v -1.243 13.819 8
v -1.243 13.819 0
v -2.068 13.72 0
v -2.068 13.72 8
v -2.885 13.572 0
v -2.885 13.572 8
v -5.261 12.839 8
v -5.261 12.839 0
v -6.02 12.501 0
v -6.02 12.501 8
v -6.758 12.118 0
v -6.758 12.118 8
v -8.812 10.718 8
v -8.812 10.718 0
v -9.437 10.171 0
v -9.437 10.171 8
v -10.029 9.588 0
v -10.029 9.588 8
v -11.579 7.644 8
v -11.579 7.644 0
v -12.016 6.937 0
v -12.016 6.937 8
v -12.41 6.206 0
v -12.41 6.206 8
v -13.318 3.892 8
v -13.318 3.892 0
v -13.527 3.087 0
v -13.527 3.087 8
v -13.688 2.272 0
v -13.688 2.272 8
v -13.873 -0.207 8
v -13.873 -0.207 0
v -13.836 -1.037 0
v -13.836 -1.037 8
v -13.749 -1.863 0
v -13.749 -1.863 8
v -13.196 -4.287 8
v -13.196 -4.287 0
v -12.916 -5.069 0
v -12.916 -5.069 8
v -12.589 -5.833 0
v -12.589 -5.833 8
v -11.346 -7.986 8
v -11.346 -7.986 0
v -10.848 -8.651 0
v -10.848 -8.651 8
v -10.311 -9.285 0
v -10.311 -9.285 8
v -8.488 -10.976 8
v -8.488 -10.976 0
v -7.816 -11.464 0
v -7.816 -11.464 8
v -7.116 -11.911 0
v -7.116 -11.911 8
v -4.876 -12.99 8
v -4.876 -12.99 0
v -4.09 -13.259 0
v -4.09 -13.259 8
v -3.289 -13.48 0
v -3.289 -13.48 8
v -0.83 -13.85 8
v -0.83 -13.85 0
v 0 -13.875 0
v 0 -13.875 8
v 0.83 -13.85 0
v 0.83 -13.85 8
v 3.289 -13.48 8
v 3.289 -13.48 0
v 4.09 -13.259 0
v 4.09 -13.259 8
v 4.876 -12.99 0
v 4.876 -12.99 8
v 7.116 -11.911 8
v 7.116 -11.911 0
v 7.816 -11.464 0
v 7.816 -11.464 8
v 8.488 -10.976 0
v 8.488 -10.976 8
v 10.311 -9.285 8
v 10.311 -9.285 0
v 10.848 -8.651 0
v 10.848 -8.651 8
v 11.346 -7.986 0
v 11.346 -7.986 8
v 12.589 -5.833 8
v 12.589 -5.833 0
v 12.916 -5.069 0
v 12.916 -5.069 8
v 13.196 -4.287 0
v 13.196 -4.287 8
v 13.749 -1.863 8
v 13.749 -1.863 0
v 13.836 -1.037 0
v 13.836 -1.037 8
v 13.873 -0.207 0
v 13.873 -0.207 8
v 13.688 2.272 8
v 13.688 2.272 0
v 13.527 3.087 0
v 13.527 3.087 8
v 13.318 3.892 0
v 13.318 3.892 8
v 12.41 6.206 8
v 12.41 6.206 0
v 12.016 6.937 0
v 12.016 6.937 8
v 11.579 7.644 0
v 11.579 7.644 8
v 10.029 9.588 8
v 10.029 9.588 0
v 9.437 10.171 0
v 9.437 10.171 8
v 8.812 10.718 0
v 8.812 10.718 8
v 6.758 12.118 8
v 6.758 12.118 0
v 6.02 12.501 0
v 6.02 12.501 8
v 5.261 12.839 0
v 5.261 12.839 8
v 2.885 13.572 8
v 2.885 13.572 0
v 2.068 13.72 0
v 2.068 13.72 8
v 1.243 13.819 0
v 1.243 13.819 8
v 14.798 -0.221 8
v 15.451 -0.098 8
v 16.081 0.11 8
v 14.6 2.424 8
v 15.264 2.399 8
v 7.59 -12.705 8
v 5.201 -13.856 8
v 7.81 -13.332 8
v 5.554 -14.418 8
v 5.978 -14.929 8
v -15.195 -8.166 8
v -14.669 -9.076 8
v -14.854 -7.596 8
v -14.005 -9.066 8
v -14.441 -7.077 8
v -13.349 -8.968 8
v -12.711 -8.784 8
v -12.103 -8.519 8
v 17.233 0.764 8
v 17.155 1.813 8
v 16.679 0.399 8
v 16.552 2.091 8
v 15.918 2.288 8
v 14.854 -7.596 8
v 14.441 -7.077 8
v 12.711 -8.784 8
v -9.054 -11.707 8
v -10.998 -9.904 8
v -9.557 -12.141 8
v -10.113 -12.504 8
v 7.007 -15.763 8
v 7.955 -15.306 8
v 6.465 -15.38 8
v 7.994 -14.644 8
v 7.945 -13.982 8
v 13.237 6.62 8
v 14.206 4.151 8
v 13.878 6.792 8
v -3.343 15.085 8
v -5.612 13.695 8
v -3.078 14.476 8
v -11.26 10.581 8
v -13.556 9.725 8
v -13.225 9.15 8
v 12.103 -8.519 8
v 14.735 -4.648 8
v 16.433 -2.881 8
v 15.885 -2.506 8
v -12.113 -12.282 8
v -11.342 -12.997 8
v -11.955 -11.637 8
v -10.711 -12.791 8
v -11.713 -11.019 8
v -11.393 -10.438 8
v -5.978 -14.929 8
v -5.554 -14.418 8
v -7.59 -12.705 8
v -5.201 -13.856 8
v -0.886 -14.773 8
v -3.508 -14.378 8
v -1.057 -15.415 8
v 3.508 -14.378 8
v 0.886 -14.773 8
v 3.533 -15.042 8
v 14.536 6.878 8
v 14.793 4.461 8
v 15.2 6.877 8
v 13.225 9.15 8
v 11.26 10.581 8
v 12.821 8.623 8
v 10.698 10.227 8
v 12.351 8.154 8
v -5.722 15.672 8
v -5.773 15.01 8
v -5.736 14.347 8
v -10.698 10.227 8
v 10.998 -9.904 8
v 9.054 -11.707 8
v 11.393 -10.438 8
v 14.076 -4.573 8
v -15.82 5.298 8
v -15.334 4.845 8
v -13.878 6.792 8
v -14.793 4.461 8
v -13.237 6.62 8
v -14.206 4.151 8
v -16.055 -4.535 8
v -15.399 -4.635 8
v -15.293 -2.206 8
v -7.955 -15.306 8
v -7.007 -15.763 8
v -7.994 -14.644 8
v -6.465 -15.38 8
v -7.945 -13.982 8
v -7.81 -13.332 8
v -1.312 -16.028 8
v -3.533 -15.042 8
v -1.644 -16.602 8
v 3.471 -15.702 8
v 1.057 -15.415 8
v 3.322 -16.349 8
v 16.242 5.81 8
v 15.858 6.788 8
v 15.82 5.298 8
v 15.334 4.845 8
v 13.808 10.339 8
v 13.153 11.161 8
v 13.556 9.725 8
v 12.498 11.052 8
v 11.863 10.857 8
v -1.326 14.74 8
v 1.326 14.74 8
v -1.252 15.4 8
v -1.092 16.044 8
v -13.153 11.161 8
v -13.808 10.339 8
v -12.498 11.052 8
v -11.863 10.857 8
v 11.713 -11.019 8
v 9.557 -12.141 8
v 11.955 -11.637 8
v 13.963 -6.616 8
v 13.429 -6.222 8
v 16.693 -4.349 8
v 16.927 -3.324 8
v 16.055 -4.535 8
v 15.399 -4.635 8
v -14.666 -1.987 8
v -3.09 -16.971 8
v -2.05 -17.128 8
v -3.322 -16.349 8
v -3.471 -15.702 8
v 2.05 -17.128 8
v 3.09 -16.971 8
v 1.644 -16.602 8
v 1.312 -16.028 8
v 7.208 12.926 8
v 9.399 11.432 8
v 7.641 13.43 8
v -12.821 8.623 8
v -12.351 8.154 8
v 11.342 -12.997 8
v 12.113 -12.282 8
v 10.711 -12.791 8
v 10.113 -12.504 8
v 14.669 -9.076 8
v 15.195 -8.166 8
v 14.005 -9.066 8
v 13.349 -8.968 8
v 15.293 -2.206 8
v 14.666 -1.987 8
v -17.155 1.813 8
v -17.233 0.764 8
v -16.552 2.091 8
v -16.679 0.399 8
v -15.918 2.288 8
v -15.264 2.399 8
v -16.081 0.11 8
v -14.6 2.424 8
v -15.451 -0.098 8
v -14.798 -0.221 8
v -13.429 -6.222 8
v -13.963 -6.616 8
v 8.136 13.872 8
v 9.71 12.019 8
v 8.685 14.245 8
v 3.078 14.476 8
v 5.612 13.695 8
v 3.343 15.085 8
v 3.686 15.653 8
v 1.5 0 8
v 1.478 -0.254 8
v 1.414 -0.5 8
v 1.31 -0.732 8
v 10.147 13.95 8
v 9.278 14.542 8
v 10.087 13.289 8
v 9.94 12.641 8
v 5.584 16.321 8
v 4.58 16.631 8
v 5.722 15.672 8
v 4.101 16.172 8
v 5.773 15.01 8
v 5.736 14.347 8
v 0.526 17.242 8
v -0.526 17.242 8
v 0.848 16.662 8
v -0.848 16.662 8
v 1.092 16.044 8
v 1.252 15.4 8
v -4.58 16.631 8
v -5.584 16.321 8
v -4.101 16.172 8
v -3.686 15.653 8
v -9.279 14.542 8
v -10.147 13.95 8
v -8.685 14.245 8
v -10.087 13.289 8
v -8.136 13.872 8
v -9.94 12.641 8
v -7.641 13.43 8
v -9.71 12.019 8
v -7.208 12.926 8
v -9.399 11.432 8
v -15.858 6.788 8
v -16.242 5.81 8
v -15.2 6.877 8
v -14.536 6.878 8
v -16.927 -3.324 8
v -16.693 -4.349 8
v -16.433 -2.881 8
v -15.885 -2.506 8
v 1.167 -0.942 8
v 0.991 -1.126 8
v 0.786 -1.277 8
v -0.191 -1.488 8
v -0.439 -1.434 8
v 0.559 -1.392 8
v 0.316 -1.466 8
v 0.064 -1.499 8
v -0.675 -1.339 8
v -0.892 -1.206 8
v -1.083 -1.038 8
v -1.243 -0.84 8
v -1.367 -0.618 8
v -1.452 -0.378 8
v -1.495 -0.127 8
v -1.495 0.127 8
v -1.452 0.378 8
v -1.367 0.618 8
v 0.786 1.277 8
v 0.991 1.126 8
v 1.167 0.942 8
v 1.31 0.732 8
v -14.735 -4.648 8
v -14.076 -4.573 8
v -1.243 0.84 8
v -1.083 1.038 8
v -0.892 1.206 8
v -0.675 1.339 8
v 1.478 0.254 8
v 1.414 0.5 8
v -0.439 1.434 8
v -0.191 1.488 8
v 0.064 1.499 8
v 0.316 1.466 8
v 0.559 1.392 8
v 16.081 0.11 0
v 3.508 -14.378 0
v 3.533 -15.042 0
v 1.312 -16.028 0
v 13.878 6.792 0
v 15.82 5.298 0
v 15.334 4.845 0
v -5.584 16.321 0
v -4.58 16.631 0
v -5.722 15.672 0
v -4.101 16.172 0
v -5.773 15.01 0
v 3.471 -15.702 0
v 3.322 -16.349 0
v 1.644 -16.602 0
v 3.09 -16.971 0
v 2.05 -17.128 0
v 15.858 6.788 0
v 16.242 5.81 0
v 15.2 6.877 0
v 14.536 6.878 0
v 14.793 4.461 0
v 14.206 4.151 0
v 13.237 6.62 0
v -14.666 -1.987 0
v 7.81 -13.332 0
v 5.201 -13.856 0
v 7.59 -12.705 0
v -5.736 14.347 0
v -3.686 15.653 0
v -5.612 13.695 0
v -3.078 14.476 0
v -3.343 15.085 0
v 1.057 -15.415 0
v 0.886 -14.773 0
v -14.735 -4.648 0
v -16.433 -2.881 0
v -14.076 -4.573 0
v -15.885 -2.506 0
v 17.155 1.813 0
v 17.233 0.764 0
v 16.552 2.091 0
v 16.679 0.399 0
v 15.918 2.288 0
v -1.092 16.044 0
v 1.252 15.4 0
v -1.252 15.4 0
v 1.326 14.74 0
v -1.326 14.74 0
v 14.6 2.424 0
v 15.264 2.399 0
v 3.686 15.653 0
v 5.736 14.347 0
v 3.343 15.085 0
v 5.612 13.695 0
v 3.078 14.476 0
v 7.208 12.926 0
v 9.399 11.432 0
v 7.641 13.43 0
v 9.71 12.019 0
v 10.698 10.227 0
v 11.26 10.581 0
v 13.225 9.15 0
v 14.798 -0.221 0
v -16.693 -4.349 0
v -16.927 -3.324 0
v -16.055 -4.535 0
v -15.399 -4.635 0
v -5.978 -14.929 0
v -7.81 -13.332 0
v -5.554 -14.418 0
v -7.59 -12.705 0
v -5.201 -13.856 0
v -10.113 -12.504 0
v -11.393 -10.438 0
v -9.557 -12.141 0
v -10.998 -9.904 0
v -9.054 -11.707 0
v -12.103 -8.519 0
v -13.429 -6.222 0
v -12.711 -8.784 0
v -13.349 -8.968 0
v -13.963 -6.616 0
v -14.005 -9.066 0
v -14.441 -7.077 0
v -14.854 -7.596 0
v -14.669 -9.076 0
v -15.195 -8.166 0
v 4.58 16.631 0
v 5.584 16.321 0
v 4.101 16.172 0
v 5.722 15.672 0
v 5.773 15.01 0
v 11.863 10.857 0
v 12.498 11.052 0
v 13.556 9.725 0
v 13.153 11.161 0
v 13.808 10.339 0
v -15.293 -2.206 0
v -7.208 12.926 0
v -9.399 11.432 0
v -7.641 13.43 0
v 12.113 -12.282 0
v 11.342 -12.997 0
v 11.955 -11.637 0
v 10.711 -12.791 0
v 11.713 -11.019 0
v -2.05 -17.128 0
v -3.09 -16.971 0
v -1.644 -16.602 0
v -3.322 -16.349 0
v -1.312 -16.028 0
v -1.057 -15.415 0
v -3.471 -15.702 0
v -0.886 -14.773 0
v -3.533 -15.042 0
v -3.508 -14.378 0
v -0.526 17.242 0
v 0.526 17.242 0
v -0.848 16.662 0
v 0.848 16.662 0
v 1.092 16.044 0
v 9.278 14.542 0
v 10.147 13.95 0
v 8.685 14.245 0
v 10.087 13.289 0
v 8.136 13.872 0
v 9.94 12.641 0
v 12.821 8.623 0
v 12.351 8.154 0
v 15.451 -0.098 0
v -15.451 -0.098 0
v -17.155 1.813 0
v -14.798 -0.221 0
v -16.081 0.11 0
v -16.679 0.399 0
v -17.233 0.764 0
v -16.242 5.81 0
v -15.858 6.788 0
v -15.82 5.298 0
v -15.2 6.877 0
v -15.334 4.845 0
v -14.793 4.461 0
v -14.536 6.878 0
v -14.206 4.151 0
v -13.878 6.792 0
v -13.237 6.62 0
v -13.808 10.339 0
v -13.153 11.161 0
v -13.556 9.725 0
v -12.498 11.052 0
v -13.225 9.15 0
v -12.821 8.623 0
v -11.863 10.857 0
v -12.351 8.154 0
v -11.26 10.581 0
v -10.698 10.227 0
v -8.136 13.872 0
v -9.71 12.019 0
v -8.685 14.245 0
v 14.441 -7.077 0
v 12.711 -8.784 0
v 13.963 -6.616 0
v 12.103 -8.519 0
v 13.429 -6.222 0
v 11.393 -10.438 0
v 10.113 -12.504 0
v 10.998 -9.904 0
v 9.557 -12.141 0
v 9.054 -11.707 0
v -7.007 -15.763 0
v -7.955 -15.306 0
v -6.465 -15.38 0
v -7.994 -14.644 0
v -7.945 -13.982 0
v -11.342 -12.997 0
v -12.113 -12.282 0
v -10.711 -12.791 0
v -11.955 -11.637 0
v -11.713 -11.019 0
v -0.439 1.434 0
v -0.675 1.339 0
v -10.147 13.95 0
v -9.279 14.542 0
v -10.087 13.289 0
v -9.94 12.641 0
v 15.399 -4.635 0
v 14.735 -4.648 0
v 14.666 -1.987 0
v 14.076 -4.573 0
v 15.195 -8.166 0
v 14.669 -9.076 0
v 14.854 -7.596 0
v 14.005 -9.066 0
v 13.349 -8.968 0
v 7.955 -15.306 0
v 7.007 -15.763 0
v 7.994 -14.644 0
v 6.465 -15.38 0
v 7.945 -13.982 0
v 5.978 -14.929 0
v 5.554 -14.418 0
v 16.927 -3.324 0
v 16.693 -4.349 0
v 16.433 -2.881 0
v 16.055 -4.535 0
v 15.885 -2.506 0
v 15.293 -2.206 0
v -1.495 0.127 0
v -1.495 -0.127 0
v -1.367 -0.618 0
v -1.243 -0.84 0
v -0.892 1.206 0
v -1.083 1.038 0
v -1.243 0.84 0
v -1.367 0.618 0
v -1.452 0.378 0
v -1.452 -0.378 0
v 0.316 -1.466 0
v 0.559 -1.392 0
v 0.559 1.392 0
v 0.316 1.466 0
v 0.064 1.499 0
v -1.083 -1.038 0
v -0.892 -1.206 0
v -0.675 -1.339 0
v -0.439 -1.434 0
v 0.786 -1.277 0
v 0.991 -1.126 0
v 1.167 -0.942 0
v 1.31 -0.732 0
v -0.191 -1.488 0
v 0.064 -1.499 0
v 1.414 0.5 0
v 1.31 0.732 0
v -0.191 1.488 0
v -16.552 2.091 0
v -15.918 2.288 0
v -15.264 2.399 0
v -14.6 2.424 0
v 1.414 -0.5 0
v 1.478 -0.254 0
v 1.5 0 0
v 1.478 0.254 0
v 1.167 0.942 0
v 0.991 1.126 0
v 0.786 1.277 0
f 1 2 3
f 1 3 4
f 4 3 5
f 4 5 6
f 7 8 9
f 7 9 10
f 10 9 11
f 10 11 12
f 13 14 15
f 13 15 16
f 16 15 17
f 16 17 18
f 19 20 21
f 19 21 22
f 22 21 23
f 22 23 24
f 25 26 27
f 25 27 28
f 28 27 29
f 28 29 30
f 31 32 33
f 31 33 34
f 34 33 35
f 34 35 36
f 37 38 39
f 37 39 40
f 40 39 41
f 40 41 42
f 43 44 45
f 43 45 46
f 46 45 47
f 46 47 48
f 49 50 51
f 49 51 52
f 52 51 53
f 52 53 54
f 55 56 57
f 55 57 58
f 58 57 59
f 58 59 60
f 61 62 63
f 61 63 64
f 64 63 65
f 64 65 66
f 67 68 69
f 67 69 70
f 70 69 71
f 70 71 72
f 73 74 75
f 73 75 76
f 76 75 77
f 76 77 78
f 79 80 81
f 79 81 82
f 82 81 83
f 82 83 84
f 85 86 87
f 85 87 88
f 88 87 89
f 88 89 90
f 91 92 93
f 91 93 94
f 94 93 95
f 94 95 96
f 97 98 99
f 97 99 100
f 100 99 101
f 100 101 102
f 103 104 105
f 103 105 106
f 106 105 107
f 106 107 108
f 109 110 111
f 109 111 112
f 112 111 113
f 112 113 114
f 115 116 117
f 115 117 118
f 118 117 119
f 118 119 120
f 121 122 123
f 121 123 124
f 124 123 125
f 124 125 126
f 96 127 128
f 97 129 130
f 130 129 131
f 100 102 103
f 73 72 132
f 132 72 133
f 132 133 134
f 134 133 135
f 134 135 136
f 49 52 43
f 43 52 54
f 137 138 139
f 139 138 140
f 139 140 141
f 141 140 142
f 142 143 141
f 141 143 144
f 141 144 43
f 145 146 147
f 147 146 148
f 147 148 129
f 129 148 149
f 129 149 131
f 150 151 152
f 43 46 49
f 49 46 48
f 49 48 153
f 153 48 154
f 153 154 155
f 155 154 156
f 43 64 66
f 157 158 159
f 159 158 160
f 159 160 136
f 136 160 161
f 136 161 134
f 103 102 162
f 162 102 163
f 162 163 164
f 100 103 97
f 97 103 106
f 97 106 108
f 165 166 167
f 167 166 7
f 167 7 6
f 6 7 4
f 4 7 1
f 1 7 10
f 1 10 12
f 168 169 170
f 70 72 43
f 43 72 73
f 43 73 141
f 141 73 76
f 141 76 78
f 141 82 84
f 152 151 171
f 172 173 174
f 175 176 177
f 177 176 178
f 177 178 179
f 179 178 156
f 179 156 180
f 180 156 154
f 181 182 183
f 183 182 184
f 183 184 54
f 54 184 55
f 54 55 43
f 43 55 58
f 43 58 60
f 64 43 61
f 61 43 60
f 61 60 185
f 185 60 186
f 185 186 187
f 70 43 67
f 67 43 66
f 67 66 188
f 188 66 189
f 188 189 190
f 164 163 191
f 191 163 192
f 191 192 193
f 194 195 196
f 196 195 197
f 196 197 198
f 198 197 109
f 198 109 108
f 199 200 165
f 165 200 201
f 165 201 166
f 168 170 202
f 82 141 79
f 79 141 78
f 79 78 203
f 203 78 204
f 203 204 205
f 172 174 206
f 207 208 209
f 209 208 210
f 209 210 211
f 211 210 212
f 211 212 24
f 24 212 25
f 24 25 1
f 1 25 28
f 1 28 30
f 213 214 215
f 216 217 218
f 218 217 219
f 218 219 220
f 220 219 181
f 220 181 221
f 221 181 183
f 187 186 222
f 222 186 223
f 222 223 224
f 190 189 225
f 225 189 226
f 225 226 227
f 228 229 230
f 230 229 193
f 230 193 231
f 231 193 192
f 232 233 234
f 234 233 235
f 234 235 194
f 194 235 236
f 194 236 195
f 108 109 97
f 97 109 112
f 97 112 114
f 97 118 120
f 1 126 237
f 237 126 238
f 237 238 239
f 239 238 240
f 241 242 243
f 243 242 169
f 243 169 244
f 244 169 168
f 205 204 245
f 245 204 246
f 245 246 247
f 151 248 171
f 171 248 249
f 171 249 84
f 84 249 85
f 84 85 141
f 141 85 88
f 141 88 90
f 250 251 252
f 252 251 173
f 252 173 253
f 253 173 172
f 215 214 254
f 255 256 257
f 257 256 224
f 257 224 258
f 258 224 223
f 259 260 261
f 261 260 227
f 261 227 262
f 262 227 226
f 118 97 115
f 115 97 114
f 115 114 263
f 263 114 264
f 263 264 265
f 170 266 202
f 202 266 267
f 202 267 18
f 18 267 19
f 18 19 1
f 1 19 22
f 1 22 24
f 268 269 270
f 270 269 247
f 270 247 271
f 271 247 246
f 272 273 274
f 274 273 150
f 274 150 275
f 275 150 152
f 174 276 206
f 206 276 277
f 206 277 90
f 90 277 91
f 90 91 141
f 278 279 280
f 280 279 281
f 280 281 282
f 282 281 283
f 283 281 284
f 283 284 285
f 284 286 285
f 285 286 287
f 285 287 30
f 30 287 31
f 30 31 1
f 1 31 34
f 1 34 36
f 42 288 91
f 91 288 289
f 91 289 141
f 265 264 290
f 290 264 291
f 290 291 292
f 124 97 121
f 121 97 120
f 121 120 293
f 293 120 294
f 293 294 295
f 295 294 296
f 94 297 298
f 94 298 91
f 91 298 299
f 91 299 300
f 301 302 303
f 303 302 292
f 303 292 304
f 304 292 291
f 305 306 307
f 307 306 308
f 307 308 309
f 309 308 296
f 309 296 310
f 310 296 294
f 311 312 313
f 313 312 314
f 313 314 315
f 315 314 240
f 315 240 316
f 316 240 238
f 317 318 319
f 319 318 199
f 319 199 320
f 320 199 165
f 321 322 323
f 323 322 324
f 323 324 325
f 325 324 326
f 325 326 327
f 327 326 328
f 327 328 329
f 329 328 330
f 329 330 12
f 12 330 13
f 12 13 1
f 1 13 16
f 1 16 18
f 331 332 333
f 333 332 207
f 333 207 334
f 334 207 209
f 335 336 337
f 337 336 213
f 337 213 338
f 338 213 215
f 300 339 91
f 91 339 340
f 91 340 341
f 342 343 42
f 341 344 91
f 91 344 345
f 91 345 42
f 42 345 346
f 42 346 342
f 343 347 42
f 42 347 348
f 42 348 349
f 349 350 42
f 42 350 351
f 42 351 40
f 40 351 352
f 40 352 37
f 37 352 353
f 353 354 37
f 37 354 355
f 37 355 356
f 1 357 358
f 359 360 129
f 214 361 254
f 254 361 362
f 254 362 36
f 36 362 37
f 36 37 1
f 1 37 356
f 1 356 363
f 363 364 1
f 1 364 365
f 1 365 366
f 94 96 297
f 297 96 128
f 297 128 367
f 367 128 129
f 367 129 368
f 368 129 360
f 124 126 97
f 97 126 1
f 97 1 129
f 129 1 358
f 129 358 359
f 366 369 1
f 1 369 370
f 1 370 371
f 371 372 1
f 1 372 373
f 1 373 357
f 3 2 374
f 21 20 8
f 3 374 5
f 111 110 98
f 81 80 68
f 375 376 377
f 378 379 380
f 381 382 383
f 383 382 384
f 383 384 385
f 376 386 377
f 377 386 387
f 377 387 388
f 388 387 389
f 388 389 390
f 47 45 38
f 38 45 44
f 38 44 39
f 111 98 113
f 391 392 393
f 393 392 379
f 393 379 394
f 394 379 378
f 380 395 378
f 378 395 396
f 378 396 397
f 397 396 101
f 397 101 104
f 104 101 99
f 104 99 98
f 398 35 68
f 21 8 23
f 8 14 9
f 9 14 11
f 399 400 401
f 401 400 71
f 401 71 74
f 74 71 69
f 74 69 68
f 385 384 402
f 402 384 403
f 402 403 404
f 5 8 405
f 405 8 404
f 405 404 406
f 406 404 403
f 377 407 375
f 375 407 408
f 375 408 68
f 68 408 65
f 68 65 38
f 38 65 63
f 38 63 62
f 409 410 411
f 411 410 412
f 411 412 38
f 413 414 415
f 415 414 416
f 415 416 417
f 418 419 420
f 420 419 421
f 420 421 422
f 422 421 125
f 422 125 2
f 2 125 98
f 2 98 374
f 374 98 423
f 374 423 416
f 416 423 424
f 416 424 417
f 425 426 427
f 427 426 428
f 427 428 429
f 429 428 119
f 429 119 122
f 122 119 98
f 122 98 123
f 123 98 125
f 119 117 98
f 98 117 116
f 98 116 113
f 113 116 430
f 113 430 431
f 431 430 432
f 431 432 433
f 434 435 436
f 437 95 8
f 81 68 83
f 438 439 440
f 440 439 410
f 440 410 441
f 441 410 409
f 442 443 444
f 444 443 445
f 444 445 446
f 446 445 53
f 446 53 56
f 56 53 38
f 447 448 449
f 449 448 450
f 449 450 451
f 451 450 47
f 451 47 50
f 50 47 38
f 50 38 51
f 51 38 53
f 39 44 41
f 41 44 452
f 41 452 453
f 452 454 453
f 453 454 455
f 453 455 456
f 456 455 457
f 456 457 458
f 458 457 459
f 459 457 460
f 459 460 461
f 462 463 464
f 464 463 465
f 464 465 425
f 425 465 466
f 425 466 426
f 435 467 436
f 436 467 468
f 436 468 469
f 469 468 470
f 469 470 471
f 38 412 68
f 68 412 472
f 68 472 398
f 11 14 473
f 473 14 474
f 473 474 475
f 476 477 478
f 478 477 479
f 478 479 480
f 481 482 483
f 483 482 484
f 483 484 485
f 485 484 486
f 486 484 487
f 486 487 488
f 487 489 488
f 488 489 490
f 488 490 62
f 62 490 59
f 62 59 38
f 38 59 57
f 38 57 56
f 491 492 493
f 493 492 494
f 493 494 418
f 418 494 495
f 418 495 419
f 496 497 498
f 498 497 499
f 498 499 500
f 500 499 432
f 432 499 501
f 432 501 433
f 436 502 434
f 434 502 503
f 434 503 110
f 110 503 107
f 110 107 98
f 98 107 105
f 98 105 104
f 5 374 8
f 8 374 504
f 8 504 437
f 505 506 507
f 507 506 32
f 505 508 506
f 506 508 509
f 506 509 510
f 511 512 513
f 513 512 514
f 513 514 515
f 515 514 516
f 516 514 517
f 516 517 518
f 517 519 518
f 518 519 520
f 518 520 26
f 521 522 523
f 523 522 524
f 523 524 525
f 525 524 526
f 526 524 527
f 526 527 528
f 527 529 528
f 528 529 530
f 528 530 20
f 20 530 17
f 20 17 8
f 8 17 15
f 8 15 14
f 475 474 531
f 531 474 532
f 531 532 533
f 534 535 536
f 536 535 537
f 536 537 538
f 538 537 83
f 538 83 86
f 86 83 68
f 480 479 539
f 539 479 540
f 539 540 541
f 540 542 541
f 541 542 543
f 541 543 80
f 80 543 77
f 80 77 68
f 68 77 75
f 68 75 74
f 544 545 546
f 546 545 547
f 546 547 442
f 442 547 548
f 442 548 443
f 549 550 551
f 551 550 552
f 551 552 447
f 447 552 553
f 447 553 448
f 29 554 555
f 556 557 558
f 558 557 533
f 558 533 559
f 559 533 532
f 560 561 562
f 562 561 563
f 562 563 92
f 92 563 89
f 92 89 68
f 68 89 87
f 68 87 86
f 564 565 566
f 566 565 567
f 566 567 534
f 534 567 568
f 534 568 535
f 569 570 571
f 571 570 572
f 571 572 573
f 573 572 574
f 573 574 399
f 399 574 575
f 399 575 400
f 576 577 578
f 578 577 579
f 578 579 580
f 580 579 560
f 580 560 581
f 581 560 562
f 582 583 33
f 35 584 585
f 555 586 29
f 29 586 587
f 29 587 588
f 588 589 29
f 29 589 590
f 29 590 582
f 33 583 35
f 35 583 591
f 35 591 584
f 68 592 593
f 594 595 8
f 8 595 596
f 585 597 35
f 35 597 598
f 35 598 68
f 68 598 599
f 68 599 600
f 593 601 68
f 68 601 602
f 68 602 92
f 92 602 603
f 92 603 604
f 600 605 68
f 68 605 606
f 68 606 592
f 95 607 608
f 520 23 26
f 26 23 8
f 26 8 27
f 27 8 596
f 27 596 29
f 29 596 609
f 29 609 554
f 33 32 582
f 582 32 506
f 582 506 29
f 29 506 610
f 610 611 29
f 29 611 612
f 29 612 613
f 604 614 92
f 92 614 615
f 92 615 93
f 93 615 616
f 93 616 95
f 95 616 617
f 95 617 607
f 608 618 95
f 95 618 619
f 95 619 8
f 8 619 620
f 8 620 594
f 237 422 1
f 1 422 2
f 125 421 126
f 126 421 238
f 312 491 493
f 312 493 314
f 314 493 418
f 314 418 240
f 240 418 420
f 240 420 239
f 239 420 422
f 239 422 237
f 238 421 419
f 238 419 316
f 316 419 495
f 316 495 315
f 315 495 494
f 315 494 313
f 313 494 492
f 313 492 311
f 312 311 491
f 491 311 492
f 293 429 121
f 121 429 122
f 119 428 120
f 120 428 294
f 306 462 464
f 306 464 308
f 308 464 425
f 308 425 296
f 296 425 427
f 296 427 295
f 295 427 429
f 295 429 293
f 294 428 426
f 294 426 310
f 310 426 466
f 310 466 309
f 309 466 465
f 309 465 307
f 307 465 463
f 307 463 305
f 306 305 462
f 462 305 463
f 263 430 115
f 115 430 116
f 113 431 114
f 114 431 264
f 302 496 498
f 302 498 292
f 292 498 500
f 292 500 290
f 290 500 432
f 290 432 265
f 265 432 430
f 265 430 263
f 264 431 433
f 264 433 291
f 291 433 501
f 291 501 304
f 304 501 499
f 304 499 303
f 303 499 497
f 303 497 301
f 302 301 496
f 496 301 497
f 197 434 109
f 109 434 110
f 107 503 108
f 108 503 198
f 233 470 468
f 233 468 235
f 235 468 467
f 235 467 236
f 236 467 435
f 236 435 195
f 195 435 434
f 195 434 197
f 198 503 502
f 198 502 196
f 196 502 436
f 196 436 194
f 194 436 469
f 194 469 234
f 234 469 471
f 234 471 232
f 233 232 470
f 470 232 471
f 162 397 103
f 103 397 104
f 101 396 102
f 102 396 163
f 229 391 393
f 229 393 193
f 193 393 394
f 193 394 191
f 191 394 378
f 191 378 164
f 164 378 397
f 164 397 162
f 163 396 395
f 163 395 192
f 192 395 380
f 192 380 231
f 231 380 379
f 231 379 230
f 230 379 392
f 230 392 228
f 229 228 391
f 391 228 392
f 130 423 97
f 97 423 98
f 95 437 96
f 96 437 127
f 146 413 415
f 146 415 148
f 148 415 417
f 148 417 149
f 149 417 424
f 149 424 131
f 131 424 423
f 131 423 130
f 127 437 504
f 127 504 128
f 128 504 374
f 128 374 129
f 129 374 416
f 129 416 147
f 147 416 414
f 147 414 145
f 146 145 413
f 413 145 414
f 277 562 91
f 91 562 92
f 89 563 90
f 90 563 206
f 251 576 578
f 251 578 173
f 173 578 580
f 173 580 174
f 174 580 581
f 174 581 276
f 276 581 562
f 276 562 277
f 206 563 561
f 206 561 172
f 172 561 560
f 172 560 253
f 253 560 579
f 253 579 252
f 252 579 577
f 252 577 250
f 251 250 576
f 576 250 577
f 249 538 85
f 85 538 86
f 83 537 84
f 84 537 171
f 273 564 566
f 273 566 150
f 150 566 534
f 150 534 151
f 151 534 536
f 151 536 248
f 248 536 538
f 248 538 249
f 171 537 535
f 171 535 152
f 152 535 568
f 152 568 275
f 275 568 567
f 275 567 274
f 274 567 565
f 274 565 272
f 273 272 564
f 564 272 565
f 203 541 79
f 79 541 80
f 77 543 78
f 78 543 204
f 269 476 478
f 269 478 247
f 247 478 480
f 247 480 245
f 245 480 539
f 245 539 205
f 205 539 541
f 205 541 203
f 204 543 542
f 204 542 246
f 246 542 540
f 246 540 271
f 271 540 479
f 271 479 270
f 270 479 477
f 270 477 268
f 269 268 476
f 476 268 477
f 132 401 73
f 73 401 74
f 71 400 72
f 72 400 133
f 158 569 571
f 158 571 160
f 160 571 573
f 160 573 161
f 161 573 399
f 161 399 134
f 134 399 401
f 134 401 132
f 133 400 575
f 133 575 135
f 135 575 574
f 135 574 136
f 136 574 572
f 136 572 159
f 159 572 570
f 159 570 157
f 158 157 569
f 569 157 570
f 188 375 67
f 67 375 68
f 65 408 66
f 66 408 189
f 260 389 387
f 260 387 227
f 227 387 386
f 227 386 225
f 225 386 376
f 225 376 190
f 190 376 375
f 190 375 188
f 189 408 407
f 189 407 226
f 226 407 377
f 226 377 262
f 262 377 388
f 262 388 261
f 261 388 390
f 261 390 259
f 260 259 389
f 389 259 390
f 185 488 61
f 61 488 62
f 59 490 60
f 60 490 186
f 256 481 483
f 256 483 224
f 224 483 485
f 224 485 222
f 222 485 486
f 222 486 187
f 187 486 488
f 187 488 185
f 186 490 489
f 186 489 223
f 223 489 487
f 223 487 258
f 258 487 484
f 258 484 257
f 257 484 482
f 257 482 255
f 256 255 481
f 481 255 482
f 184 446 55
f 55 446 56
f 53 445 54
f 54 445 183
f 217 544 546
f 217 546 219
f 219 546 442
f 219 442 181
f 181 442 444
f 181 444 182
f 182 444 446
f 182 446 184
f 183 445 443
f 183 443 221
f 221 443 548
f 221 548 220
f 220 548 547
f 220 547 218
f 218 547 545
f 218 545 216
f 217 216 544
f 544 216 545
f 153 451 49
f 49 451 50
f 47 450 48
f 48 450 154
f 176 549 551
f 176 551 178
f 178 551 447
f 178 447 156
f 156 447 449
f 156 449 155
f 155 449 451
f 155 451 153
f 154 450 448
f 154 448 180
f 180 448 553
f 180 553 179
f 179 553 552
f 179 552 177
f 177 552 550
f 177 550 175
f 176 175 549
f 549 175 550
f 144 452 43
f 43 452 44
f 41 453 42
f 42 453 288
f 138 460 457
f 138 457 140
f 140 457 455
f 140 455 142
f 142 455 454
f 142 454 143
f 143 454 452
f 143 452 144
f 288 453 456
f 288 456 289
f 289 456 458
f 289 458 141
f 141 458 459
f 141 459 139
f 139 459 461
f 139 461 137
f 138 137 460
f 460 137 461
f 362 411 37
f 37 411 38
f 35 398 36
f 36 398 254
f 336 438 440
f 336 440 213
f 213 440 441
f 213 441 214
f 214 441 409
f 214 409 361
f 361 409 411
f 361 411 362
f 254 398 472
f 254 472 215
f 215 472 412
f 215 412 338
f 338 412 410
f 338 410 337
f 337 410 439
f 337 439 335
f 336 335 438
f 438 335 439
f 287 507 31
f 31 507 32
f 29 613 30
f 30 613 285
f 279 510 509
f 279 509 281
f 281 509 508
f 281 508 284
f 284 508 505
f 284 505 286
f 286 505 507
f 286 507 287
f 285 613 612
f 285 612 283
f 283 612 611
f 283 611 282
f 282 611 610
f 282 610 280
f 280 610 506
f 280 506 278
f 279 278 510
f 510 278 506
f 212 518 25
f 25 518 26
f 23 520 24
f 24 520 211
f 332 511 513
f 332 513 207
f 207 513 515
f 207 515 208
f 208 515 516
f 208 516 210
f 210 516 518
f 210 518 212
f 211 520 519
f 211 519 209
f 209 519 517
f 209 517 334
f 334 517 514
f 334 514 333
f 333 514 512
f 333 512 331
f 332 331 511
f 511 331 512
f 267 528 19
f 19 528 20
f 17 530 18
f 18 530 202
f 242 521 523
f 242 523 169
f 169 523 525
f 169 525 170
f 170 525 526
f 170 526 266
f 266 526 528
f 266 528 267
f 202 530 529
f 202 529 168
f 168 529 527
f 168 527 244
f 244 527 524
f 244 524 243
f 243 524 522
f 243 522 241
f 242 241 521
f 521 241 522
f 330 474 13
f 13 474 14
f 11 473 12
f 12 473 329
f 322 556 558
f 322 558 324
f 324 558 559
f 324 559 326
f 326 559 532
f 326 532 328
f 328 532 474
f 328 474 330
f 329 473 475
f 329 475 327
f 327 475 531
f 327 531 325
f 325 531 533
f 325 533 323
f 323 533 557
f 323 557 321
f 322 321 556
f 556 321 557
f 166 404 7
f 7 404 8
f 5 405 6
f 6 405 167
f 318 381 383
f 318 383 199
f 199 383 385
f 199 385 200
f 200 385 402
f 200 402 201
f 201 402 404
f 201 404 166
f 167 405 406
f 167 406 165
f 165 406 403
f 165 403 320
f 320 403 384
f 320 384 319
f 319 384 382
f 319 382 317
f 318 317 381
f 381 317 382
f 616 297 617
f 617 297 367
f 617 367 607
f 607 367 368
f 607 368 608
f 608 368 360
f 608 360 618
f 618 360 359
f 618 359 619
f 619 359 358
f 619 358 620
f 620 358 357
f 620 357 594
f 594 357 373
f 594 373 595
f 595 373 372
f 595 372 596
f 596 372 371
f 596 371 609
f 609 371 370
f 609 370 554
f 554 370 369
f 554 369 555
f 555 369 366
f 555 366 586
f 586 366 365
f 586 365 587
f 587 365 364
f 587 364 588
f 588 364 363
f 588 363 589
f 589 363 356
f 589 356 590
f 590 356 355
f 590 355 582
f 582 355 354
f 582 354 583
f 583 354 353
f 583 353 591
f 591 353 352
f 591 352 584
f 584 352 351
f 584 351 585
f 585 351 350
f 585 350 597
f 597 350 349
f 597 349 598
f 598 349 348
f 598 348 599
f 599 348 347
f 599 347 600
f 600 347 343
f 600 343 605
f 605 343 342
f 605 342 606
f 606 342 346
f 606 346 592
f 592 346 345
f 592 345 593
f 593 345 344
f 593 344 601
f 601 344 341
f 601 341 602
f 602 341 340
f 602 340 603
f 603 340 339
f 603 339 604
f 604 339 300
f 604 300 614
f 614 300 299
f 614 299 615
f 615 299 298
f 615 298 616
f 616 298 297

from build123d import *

# Parameters (mm, degrees)
SKETCH2_R           = 13.875
BOSS_EXTRUDE1_DEPTH = 8
BOSS_EXTRUDE2_DEPTH = 8
CIRPATTERN2_COUNT   = 21
SKETCH5_R           = 1.5
MIDDLE_HOLE_DEPTH   = 8


with BuildPart() as part:
    # Sketch2 → Boss-Extrude1 (new body)
    with BuildSketch(Plane.XY):
        Circle(SKETCH2_R)
    extrude(amount=BOSS_EXTRUDE1_DEPTH)

    # Sketch3 → Boss-Extrude2 (add)
    with BuildSketch(Plane.XY):
        with BuildLine():
            Line((0, 0), (1.325926716, 14.740485689))
            ThreePointArc((1.325926716, 14.740485689), (1.091950654, 16.044411319), (0.525585636, 17.241991177))
            Line((0.525585636, 17.241991177), (-0.525585636, 17.241991177))
            ThreePointArc((-0.525585636, 17.241991177), (-1.091950654, 16.044411319), (-1.325926716, 14.740485689))
            Line((-1.325926716, 14.740485689), (0, 0))
        make_face()
    boss_extrude2 = extrude(amount=BOSS_EXTRUDE2_DEPTH)

    # CirPattern2: Boss-Extrude2 ×21 about axis
    cirpattern2_axis = Axis((0, 0, 0), (0, 0, 1))
    for i in range(1, CIRPATTERN2_COUNT):
        add(boss_extrude2.rotate(cirpattern2_axis, i * 360 / CIRPATTERN2_COUNT))

    # Sketch5 → Middle Hole (cut)
    with BuildSketch(Plane.XY.offset(8)):
        Circle(SKETCH5_R)
    extrude(amount=-MIDDLE_HOLE_DEPTH, mode=Mode.SUBTRACT)


solid = part.part
